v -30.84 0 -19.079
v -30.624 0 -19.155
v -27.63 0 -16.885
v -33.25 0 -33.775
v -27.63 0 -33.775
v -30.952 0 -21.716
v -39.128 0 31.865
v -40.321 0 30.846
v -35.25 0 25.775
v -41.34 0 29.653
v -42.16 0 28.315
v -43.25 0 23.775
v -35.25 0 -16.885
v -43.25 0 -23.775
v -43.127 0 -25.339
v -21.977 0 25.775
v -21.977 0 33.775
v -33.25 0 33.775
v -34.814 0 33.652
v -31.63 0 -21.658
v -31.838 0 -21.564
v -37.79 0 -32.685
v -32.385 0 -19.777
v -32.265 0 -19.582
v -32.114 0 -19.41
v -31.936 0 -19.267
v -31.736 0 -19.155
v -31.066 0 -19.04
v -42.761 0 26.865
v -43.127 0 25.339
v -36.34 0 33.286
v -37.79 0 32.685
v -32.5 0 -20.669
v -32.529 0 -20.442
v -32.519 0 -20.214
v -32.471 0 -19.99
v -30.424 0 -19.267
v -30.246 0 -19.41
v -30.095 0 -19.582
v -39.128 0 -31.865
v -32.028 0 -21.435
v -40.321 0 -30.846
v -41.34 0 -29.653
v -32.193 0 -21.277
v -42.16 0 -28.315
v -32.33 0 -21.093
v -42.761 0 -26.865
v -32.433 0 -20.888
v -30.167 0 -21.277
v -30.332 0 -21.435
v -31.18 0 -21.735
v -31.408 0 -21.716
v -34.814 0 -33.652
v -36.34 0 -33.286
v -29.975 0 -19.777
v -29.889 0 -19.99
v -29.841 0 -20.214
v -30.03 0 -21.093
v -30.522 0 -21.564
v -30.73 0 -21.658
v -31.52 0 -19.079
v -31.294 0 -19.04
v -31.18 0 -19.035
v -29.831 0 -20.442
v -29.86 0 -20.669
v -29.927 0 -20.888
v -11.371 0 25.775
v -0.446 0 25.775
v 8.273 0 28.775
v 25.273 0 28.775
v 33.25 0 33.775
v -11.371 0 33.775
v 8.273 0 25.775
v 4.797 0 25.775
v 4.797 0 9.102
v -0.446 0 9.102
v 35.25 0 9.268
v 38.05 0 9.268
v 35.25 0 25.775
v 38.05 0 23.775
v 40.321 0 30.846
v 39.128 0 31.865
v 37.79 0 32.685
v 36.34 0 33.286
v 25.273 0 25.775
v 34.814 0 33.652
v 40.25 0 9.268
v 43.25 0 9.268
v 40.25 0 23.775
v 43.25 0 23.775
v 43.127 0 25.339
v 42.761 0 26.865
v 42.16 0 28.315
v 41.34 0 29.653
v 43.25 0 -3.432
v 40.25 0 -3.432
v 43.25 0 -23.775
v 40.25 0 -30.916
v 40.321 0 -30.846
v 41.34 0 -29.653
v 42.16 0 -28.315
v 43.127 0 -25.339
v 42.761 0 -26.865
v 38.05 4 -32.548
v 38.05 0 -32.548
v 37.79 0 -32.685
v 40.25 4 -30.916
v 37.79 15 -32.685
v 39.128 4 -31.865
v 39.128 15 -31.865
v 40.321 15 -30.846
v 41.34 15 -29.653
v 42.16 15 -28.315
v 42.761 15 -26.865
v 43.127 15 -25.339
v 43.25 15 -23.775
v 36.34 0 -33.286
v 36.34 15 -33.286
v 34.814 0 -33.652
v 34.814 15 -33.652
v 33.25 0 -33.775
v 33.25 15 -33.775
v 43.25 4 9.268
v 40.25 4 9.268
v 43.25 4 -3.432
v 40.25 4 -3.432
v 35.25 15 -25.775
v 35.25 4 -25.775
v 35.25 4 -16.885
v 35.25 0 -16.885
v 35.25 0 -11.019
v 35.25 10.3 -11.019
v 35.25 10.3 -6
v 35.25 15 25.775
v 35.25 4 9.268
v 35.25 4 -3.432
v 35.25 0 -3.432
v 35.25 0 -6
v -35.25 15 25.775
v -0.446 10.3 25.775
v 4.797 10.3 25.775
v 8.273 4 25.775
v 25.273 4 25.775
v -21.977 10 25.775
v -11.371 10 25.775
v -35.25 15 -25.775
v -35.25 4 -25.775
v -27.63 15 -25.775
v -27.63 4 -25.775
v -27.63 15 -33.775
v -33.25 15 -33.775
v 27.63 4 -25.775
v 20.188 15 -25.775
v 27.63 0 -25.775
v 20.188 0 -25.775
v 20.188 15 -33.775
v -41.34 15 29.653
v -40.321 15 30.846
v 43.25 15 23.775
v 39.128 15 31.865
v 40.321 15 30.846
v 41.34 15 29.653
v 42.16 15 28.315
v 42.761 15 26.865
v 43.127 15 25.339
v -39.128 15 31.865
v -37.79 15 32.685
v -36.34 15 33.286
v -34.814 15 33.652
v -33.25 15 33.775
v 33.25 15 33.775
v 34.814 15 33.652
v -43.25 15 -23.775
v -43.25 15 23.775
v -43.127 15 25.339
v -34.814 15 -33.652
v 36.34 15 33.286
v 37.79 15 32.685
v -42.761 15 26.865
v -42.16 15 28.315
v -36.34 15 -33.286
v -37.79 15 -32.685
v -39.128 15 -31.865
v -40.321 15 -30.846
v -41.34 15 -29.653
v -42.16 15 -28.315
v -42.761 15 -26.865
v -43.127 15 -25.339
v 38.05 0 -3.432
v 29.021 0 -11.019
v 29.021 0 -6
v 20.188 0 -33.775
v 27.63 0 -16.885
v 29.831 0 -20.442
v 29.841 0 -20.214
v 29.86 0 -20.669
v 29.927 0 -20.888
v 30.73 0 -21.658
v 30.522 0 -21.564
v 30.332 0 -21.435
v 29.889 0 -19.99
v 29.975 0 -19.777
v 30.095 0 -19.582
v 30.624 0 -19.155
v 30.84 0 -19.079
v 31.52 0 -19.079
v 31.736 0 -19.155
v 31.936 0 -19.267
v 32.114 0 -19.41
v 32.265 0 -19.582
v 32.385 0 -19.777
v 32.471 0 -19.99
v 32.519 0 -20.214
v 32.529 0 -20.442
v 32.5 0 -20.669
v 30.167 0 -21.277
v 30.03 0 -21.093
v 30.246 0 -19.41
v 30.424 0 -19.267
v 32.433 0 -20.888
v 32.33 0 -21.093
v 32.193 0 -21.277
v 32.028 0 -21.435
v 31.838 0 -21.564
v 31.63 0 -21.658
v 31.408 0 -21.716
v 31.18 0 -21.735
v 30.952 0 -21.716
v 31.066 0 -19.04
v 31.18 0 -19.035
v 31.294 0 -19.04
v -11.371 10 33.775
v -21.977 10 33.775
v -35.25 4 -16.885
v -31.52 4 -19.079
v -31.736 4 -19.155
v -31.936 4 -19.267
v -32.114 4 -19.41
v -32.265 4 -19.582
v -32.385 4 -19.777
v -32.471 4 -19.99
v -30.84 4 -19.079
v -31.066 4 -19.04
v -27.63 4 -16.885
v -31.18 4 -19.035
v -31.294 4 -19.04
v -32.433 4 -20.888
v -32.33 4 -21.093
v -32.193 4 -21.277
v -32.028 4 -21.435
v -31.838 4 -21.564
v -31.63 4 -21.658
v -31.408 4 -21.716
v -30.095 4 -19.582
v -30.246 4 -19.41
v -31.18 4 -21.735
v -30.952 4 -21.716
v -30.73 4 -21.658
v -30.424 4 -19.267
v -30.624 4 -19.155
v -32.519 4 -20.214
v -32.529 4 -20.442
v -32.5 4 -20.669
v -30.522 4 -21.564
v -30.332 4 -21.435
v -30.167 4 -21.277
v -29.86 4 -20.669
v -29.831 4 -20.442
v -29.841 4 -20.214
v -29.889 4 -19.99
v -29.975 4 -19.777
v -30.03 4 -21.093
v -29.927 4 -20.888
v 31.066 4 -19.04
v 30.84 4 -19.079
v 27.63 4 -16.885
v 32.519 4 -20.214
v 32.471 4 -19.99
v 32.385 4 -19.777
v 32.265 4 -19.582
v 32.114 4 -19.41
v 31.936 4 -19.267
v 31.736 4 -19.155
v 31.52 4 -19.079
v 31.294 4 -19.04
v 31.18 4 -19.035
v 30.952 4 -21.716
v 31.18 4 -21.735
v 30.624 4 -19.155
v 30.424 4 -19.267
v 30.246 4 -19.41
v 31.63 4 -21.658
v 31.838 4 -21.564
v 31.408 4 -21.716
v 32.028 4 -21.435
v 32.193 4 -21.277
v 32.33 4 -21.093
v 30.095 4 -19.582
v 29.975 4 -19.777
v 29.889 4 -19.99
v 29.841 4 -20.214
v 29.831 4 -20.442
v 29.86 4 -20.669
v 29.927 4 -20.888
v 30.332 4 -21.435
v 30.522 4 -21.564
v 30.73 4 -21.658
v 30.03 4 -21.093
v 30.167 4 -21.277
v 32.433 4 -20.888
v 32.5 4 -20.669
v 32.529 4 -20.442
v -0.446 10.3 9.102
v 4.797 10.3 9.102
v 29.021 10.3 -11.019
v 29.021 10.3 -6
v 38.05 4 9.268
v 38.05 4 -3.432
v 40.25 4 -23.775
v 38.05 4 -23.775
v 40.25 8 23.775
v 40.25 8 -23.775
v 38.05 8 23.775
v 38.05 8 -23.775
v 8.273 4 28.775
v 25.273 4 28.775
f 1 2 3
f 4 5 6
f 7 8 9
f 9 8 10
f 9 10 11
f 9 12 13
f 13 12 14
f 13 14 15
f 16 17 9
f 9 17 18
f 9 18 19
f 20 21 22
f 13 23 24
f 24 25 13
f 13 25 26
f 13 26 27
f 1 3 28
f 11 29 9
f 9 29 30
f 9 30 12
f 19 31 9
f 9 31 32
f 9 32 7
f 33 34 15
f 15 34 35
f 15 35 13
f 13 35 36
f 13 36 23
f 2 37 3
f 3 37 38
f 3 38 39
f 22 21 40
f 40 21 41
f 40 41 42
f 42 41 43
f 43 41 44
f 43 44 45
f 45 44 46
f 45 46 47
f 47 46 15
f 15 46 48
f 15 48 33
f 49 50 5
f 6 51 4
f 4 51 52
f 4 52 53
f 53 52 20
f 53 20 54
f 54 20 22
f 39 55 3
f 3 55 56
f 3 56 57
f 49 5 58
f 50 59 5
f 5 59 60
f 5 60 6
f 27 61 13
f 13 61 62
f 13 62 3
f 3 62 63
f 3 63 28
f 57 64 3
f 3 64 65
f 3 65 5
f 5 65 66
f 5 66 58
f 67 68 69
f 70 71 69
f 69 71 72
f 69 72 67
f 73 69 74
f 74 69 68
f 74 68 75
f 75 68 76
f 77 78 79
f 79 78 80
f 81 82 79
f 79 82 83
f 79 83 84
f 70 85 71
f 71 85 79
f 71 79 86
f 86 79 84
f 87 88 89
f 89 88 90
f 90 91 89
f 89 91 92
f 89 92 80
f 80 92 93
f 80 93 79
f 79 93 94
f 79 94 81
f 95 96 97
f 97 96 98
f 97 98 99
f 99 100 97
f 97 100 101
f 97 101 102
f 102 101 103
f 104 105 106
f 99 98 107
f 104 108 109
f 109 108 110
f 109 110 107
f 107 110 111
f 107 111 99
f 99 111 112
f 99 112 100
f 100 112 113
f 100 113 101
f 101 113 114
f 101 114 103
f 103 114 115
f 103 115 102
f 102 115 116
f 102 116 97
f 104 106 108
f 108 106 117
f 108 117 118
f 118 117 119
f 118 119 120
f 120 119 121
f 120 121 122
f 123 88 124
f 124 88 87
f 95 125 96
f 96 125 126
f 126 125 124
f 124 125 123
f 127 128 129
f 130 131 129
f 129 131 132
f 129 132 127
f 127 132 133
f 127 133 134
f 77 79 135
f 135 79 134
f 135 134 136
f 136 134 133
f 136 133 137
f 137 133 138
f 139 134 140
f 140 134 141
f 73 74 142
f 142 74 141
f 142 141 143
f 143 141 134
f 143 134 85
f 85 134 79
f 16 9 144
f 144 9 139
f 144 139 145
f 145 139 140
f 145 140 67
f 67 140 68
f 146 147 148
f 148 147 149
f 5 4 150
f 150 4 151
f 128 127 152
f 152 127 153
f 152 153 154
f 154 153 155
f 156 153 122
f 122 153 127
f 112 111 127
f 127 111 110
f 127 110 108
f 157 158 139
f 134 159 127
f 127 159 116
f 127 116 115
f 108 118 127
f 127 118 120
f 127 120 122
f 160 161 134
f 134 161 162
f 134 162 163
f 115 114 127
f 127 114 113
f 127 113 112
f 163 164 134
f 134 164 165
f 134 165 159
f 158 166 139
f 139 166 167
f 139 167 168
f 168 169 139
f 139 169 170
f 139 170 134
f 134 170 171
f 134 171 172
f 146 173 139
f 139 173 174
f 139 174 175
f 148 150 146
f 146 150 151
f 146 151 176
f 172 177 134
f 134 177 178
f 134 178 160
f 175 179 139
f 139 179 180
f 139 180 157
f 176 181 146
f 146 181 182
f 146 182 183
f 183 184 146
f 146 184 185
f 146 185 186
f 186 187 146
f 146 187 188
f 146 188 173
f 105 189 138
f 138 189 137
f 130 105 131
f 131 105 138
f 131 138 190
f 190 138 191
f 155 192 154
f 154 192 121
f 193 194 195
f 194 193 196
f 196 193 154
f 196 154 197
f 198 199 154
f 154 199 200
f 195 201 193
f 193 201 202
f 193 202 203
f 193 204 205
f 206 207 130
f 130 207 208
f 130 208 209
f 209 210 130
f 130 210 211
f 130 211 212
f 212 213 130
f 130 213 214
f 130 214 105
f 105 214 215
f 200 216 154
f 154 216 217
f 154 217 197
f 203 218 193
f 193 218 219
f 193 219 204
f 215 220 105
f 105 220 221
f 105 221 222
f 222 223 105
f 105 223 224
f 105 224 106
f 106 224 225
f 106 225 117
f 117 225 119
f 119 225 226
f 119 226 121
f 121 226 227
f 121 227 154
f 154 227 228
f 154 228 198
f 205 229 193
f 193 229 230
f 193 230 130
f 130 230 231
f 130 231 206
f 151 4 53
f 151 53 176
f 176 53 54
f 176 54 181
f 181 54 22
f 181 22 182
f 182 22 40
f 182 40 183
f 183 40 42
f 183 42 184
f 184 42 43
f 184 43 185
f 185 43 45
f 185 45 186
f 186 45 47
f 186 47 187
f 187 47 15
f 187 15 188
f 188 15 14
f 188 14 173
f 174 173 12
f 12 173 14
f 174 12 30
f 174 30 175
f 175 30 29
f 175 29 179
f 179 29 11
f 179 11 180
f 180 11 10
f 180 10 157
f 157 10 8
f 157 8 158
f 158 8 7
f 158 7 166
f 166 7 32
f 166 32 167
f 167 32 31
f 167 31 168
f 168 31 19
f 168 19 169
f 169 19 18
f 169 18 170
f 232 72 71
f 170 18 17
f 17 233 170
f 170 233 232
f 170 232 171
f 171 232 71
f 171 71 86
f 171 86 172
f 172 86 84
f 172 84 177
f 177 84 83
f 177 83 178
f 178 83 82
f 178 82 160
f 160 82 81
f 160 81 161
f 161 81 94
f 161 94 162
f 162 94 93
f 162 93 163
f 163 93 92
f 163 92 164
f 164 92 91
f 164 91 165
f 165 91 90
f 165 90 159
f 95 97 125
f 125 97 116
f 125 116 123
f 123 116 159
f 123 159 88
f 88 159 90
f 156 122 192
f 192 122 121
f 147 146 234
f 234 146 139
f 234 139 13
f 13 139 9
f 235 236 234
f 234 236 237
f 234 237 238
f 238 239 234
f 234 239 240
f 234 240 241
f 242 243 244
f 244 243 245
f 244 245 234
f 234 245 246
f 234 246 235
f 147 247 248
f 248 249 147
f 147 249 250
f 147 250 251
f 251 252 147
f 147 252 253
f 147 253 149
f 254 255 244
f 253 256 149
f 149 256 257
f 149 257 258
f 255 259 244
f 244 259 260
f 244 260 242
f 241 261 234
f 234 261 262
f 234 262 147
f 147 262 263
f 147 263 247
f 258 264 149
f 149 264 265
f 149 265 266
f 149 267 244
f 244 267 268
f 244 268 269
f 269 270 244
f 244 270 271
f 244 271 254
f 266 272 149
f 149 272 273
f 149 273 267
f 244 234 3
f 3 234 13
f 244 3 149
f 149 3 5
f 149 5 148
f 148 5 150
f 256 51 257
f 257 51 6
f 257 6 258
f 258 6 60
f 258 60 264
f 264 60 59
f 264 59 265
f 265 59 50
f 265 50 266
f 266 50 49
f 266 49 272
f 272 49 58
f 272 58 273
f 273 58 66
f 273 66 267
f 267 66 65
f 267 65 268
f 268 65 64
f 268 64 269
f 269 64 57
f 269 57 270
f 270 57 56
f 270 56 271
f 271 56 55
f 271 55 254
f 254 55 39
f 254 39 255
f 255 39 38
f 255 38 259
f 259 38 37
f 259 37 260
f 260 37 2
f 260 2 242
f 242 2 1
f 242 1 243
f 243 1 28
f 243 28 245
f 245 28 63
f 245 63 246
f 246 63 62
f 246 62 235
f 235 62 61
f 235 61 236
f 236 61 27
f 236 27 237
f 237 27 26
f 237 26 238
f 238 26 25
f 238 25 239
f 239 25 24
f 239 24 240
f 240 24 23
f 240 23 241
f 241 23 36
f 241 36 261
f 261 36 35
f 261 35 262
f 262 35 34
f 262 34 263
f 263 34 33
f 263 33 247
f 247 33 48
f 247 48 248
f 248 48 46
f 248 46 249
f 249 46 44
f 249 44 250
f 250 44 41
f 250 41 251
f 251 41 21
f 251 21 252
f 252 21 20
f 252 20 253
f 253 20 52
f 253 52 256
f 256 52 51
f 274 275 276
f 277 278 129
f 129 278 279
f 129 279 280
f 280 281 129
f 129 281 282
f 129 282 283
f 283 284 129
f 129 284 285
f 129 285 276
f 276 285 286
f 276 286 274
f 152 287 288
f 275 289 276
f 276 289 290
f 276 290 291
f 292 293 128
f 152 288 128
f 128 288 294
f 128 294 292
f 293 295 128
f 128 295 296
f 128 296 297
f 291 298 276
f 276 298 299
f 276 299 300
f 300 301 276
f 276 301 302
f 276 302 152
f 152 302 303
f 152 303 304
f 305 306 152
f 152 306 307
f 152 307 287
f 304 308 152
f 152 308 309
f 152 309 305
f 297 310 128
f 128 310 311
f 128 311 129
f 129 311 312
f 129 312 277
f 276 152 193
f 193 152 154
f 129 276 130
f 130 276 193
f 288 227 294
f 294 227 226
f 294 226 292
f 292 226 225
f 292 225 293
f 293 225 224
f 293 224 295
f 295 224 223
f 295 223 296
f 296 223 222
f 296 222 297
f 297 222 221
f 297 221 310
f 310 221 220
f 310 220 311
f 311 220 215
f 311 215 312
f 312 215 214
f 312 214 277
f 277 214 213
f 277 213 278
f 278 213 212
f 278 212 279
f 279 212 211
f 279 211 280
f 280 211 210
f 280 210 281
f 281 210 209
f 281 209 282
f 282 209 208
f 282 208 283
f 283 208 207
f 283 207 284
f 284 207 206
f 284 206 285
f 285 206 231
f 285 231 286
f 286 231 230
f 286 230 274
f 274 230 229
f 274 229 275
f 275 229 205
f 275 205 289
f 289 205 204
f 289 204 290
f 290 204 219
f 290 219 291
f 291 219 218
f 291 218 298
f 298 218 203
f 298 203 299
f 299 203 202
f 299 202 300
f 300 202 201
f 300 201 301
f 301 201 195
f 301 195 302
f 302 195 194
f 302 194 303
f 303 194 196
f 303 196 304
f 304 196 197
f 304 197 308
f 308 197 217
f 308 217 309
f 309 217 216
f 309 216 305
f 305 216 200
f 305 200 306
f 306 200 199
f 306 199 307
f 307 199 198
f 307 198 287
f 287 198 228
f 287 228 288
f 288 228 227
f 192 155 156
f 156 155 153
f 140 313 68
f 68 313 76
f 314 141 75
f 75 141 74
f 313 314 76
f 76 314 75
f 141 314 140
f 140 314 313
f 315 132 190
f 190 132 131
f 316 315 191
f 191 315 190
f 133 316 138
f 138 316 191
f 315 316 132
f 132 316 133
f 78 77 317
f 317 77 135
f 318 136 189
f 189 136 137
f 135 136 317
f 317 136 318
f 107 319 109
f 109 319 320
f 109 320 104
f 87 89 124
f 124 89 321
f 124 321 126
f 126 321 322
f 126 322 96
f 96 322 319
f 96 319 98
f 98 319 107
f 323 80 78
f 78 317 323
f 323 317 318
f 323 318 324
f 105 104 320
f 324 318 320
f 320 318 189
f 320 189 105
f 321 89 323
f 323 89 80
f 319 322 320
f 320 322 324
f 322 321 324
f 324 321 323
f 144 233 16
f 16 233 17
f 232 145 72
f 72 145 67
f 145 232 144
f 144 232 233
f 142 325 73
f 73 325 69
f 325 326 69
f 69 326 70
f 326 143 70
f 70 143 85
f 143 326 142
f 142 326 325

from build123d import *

# Parameters (mm, degrees)
SKETCH_2_W          = 70.5
SKETCH_2_H          = 51.55
EXTRUDE_1_DEPTH     = 15
SKETCH_3_W          = 7.62
SKETCH_3_H          = 8.89
SKETCH_3_R          = 1.35
EXTRUDE_2_DEPTH     = 4
SKETCH_4_W          = 47.8178
SKETCH_4_H          = 8
CUT_EXTRUDE_1_DEPTH = 15
SKETCH_5_W          = 5.24256
SKETCH_5_H          = 16.6727
SKETCH_5_W_2        = 6.22916
SKETCH_5_H_2        = 5.01906
EXTRUDE_3_DEPTH     = 10.3
SKETCH_7_W          = 8
SKETCH_7_H          = 12.7
CUT_EXTRUDE_4_DEPTH = 4
CUT_EXTRUDE_5_DEPTH = 2.2
SKETCH_11_W         = 10.60647
SKETCH_11_H         = 8
CUT_EXTRUDE_6_DEPTH = 10
SKETCH_12_W         = 17
SKETCH_12_H         = 3
CUT_EXTRUDE_7_DEPTH = 4


with BuildPart() as part:
    # 草图2 → 凸台-拉伸1 (new body)
    with BuildSketch(Plane(origin=(0, 0, 0), x_dir=(1, 0, 0), z_dir=(0, 1, 0))):
        with BuildLine():
            Line((-33.25, -33.775), (33.25, -33.775))
            ThreePointArc((33.25, -33.775), (40.321067812, -30.846067812), (43.25, -23.775))
            Line((43.25, -23.775), (43.25, 23.775))
            ThreePointArc((43.25, 23.775), (40.321067812, 30.846067812), (33.25, 33.775))
            Line((33.25, 33.775), (-33.25, 33.775))
            ThreePointArc((-33.25, 33.775), (-40.321067812, 30.846067812), (-43.25, 23.775))
            Line((-43.25, 23.775), (-43.25, -23.775))
            ThreePointArc((-43.25, -23.775), (-40.321067812, -30.846067812), (-33.25, -33.775))
        make_face()
        Rectangle(SKETCH_2_W, SKETCH_2_H, mode=Mode.SUBTRACT)
    extrude(amount=EXTRUDE_1_DEPTH)

    # 草图3 → 凸台-拉伸2 (add)
    # profile 1 of 2: a face of its own
    with BuildSketch(Plane(origin=(0, 0, 0), x_dir=(1, 0, 0), z_dir=(0, 1, 0))):
        with Locations((-31.44, 21.33)):
            Rectangle(SKETCH_3_W, SKETCH_3_H)
        with Locations(Location((-31.18, 20.385, 0), (0, 0, 270))):
            Circle(SKETCH_3_R, mode=Mode.SUBTRACT)
    # profile 2 of 2: a face of its own
    with BuildSketch(Plane(origin=(0, 0, 0), x_dir=(1, 0, 0), z_dir=(0, 1, 0))):
        with Locations((31.44, 21.33)):
            Rectangle(SKETCH_3_W, SKETCH_3_H)
        with Locations(Location((31.18, 20.385, 0), (0, 0, 270))):
            Circle(SKETCH_3_R, mode=Mode.SUBTRACT)
    extrude(amount=EXTRUDE_2_DEPTH)

    # 草图4 → 切除-拉伸1 (cut)
    with BuildSketch(Plane(origin=(0, 15, 0), x_dir=(1, 0, 0), z_dir=(0, 1, 0))):
        with Locations((-3.7211, 29.775)):
            Rectangle(SKETCH_4_W, SKETCH_4_H)
    extrude(amount=-CUT_EXTRUDE_1_DEPTH, mode=Mode.SUBTRACT)

    # 草图5 → 凸台-拉伸3 (add)
    with BuildSketch(Plane(origin=(0, 0, 0), x_dir=(1, 0, 0), z_dir=(0, 1, 0))):
        with Locations((2.17558, -17.43865)):
            Rectangle(SKETCH_5_W, SKETCH_5_H)
        with Locations((32.13542, 8.50953)):
            Rectangle(SKETCH_5_W_2, SKETCH_5_H_2)
    extrude(amount=EXTRUDE_3_DEPTH)

    # 草图7 → 切除-拉伸4 (cut)
    with BuildSketch(Plane.XZ):
        with Locations((39.25, 2.91792)):
            Rectangle(SKETCH_7_W, SKETCH_7_H)
    extrude(amount=-CUT_EXTRUDE_4_DEPTH, mode=Mode.SUBTRACT)

    # 草图9 → 切除-拉伸5 (cut)
    with BuildSketch(Plane.ZY.offset(-38.05)):
        Polygon((-23.775, 8), (23.775, 8), (23.775, 0), (-33.775, 0), (-33.775, 4), (-23.775, 4), align=None)
    extrude(amount=-CUT_EXTRUDE_5_DEPTH, mode=Mode.SUBTRACT)

    # 草图11 → 切除-拉伸6 (cut)
    with BuildSketch(Plane(origin=(0, 0, 0), x_dir=(-1, 0, 0), z_dir=(0, -1, 0))):
        with Locations((16.673805, -29.775)):
            Rectangle(SKETCH_11_W, SKETCH_11_H)
    extrude(amount=-CUT_EXTRUDE_6_DEPTH, mode=Mode.SUBTRACT)

    # 草图12 → 切除-拉伸7 (cut)
    with BuildSketch(Plane.XZ):
        with Locations((16.773075079, 27.275)):
            Rectangle(SKETCH_12_W, SKETCH_12_H)
    extrude(amount=-CUT_EXTRUDE_7_DEPTH, mode=Mode.SUBTRACT)


solid = part.part
